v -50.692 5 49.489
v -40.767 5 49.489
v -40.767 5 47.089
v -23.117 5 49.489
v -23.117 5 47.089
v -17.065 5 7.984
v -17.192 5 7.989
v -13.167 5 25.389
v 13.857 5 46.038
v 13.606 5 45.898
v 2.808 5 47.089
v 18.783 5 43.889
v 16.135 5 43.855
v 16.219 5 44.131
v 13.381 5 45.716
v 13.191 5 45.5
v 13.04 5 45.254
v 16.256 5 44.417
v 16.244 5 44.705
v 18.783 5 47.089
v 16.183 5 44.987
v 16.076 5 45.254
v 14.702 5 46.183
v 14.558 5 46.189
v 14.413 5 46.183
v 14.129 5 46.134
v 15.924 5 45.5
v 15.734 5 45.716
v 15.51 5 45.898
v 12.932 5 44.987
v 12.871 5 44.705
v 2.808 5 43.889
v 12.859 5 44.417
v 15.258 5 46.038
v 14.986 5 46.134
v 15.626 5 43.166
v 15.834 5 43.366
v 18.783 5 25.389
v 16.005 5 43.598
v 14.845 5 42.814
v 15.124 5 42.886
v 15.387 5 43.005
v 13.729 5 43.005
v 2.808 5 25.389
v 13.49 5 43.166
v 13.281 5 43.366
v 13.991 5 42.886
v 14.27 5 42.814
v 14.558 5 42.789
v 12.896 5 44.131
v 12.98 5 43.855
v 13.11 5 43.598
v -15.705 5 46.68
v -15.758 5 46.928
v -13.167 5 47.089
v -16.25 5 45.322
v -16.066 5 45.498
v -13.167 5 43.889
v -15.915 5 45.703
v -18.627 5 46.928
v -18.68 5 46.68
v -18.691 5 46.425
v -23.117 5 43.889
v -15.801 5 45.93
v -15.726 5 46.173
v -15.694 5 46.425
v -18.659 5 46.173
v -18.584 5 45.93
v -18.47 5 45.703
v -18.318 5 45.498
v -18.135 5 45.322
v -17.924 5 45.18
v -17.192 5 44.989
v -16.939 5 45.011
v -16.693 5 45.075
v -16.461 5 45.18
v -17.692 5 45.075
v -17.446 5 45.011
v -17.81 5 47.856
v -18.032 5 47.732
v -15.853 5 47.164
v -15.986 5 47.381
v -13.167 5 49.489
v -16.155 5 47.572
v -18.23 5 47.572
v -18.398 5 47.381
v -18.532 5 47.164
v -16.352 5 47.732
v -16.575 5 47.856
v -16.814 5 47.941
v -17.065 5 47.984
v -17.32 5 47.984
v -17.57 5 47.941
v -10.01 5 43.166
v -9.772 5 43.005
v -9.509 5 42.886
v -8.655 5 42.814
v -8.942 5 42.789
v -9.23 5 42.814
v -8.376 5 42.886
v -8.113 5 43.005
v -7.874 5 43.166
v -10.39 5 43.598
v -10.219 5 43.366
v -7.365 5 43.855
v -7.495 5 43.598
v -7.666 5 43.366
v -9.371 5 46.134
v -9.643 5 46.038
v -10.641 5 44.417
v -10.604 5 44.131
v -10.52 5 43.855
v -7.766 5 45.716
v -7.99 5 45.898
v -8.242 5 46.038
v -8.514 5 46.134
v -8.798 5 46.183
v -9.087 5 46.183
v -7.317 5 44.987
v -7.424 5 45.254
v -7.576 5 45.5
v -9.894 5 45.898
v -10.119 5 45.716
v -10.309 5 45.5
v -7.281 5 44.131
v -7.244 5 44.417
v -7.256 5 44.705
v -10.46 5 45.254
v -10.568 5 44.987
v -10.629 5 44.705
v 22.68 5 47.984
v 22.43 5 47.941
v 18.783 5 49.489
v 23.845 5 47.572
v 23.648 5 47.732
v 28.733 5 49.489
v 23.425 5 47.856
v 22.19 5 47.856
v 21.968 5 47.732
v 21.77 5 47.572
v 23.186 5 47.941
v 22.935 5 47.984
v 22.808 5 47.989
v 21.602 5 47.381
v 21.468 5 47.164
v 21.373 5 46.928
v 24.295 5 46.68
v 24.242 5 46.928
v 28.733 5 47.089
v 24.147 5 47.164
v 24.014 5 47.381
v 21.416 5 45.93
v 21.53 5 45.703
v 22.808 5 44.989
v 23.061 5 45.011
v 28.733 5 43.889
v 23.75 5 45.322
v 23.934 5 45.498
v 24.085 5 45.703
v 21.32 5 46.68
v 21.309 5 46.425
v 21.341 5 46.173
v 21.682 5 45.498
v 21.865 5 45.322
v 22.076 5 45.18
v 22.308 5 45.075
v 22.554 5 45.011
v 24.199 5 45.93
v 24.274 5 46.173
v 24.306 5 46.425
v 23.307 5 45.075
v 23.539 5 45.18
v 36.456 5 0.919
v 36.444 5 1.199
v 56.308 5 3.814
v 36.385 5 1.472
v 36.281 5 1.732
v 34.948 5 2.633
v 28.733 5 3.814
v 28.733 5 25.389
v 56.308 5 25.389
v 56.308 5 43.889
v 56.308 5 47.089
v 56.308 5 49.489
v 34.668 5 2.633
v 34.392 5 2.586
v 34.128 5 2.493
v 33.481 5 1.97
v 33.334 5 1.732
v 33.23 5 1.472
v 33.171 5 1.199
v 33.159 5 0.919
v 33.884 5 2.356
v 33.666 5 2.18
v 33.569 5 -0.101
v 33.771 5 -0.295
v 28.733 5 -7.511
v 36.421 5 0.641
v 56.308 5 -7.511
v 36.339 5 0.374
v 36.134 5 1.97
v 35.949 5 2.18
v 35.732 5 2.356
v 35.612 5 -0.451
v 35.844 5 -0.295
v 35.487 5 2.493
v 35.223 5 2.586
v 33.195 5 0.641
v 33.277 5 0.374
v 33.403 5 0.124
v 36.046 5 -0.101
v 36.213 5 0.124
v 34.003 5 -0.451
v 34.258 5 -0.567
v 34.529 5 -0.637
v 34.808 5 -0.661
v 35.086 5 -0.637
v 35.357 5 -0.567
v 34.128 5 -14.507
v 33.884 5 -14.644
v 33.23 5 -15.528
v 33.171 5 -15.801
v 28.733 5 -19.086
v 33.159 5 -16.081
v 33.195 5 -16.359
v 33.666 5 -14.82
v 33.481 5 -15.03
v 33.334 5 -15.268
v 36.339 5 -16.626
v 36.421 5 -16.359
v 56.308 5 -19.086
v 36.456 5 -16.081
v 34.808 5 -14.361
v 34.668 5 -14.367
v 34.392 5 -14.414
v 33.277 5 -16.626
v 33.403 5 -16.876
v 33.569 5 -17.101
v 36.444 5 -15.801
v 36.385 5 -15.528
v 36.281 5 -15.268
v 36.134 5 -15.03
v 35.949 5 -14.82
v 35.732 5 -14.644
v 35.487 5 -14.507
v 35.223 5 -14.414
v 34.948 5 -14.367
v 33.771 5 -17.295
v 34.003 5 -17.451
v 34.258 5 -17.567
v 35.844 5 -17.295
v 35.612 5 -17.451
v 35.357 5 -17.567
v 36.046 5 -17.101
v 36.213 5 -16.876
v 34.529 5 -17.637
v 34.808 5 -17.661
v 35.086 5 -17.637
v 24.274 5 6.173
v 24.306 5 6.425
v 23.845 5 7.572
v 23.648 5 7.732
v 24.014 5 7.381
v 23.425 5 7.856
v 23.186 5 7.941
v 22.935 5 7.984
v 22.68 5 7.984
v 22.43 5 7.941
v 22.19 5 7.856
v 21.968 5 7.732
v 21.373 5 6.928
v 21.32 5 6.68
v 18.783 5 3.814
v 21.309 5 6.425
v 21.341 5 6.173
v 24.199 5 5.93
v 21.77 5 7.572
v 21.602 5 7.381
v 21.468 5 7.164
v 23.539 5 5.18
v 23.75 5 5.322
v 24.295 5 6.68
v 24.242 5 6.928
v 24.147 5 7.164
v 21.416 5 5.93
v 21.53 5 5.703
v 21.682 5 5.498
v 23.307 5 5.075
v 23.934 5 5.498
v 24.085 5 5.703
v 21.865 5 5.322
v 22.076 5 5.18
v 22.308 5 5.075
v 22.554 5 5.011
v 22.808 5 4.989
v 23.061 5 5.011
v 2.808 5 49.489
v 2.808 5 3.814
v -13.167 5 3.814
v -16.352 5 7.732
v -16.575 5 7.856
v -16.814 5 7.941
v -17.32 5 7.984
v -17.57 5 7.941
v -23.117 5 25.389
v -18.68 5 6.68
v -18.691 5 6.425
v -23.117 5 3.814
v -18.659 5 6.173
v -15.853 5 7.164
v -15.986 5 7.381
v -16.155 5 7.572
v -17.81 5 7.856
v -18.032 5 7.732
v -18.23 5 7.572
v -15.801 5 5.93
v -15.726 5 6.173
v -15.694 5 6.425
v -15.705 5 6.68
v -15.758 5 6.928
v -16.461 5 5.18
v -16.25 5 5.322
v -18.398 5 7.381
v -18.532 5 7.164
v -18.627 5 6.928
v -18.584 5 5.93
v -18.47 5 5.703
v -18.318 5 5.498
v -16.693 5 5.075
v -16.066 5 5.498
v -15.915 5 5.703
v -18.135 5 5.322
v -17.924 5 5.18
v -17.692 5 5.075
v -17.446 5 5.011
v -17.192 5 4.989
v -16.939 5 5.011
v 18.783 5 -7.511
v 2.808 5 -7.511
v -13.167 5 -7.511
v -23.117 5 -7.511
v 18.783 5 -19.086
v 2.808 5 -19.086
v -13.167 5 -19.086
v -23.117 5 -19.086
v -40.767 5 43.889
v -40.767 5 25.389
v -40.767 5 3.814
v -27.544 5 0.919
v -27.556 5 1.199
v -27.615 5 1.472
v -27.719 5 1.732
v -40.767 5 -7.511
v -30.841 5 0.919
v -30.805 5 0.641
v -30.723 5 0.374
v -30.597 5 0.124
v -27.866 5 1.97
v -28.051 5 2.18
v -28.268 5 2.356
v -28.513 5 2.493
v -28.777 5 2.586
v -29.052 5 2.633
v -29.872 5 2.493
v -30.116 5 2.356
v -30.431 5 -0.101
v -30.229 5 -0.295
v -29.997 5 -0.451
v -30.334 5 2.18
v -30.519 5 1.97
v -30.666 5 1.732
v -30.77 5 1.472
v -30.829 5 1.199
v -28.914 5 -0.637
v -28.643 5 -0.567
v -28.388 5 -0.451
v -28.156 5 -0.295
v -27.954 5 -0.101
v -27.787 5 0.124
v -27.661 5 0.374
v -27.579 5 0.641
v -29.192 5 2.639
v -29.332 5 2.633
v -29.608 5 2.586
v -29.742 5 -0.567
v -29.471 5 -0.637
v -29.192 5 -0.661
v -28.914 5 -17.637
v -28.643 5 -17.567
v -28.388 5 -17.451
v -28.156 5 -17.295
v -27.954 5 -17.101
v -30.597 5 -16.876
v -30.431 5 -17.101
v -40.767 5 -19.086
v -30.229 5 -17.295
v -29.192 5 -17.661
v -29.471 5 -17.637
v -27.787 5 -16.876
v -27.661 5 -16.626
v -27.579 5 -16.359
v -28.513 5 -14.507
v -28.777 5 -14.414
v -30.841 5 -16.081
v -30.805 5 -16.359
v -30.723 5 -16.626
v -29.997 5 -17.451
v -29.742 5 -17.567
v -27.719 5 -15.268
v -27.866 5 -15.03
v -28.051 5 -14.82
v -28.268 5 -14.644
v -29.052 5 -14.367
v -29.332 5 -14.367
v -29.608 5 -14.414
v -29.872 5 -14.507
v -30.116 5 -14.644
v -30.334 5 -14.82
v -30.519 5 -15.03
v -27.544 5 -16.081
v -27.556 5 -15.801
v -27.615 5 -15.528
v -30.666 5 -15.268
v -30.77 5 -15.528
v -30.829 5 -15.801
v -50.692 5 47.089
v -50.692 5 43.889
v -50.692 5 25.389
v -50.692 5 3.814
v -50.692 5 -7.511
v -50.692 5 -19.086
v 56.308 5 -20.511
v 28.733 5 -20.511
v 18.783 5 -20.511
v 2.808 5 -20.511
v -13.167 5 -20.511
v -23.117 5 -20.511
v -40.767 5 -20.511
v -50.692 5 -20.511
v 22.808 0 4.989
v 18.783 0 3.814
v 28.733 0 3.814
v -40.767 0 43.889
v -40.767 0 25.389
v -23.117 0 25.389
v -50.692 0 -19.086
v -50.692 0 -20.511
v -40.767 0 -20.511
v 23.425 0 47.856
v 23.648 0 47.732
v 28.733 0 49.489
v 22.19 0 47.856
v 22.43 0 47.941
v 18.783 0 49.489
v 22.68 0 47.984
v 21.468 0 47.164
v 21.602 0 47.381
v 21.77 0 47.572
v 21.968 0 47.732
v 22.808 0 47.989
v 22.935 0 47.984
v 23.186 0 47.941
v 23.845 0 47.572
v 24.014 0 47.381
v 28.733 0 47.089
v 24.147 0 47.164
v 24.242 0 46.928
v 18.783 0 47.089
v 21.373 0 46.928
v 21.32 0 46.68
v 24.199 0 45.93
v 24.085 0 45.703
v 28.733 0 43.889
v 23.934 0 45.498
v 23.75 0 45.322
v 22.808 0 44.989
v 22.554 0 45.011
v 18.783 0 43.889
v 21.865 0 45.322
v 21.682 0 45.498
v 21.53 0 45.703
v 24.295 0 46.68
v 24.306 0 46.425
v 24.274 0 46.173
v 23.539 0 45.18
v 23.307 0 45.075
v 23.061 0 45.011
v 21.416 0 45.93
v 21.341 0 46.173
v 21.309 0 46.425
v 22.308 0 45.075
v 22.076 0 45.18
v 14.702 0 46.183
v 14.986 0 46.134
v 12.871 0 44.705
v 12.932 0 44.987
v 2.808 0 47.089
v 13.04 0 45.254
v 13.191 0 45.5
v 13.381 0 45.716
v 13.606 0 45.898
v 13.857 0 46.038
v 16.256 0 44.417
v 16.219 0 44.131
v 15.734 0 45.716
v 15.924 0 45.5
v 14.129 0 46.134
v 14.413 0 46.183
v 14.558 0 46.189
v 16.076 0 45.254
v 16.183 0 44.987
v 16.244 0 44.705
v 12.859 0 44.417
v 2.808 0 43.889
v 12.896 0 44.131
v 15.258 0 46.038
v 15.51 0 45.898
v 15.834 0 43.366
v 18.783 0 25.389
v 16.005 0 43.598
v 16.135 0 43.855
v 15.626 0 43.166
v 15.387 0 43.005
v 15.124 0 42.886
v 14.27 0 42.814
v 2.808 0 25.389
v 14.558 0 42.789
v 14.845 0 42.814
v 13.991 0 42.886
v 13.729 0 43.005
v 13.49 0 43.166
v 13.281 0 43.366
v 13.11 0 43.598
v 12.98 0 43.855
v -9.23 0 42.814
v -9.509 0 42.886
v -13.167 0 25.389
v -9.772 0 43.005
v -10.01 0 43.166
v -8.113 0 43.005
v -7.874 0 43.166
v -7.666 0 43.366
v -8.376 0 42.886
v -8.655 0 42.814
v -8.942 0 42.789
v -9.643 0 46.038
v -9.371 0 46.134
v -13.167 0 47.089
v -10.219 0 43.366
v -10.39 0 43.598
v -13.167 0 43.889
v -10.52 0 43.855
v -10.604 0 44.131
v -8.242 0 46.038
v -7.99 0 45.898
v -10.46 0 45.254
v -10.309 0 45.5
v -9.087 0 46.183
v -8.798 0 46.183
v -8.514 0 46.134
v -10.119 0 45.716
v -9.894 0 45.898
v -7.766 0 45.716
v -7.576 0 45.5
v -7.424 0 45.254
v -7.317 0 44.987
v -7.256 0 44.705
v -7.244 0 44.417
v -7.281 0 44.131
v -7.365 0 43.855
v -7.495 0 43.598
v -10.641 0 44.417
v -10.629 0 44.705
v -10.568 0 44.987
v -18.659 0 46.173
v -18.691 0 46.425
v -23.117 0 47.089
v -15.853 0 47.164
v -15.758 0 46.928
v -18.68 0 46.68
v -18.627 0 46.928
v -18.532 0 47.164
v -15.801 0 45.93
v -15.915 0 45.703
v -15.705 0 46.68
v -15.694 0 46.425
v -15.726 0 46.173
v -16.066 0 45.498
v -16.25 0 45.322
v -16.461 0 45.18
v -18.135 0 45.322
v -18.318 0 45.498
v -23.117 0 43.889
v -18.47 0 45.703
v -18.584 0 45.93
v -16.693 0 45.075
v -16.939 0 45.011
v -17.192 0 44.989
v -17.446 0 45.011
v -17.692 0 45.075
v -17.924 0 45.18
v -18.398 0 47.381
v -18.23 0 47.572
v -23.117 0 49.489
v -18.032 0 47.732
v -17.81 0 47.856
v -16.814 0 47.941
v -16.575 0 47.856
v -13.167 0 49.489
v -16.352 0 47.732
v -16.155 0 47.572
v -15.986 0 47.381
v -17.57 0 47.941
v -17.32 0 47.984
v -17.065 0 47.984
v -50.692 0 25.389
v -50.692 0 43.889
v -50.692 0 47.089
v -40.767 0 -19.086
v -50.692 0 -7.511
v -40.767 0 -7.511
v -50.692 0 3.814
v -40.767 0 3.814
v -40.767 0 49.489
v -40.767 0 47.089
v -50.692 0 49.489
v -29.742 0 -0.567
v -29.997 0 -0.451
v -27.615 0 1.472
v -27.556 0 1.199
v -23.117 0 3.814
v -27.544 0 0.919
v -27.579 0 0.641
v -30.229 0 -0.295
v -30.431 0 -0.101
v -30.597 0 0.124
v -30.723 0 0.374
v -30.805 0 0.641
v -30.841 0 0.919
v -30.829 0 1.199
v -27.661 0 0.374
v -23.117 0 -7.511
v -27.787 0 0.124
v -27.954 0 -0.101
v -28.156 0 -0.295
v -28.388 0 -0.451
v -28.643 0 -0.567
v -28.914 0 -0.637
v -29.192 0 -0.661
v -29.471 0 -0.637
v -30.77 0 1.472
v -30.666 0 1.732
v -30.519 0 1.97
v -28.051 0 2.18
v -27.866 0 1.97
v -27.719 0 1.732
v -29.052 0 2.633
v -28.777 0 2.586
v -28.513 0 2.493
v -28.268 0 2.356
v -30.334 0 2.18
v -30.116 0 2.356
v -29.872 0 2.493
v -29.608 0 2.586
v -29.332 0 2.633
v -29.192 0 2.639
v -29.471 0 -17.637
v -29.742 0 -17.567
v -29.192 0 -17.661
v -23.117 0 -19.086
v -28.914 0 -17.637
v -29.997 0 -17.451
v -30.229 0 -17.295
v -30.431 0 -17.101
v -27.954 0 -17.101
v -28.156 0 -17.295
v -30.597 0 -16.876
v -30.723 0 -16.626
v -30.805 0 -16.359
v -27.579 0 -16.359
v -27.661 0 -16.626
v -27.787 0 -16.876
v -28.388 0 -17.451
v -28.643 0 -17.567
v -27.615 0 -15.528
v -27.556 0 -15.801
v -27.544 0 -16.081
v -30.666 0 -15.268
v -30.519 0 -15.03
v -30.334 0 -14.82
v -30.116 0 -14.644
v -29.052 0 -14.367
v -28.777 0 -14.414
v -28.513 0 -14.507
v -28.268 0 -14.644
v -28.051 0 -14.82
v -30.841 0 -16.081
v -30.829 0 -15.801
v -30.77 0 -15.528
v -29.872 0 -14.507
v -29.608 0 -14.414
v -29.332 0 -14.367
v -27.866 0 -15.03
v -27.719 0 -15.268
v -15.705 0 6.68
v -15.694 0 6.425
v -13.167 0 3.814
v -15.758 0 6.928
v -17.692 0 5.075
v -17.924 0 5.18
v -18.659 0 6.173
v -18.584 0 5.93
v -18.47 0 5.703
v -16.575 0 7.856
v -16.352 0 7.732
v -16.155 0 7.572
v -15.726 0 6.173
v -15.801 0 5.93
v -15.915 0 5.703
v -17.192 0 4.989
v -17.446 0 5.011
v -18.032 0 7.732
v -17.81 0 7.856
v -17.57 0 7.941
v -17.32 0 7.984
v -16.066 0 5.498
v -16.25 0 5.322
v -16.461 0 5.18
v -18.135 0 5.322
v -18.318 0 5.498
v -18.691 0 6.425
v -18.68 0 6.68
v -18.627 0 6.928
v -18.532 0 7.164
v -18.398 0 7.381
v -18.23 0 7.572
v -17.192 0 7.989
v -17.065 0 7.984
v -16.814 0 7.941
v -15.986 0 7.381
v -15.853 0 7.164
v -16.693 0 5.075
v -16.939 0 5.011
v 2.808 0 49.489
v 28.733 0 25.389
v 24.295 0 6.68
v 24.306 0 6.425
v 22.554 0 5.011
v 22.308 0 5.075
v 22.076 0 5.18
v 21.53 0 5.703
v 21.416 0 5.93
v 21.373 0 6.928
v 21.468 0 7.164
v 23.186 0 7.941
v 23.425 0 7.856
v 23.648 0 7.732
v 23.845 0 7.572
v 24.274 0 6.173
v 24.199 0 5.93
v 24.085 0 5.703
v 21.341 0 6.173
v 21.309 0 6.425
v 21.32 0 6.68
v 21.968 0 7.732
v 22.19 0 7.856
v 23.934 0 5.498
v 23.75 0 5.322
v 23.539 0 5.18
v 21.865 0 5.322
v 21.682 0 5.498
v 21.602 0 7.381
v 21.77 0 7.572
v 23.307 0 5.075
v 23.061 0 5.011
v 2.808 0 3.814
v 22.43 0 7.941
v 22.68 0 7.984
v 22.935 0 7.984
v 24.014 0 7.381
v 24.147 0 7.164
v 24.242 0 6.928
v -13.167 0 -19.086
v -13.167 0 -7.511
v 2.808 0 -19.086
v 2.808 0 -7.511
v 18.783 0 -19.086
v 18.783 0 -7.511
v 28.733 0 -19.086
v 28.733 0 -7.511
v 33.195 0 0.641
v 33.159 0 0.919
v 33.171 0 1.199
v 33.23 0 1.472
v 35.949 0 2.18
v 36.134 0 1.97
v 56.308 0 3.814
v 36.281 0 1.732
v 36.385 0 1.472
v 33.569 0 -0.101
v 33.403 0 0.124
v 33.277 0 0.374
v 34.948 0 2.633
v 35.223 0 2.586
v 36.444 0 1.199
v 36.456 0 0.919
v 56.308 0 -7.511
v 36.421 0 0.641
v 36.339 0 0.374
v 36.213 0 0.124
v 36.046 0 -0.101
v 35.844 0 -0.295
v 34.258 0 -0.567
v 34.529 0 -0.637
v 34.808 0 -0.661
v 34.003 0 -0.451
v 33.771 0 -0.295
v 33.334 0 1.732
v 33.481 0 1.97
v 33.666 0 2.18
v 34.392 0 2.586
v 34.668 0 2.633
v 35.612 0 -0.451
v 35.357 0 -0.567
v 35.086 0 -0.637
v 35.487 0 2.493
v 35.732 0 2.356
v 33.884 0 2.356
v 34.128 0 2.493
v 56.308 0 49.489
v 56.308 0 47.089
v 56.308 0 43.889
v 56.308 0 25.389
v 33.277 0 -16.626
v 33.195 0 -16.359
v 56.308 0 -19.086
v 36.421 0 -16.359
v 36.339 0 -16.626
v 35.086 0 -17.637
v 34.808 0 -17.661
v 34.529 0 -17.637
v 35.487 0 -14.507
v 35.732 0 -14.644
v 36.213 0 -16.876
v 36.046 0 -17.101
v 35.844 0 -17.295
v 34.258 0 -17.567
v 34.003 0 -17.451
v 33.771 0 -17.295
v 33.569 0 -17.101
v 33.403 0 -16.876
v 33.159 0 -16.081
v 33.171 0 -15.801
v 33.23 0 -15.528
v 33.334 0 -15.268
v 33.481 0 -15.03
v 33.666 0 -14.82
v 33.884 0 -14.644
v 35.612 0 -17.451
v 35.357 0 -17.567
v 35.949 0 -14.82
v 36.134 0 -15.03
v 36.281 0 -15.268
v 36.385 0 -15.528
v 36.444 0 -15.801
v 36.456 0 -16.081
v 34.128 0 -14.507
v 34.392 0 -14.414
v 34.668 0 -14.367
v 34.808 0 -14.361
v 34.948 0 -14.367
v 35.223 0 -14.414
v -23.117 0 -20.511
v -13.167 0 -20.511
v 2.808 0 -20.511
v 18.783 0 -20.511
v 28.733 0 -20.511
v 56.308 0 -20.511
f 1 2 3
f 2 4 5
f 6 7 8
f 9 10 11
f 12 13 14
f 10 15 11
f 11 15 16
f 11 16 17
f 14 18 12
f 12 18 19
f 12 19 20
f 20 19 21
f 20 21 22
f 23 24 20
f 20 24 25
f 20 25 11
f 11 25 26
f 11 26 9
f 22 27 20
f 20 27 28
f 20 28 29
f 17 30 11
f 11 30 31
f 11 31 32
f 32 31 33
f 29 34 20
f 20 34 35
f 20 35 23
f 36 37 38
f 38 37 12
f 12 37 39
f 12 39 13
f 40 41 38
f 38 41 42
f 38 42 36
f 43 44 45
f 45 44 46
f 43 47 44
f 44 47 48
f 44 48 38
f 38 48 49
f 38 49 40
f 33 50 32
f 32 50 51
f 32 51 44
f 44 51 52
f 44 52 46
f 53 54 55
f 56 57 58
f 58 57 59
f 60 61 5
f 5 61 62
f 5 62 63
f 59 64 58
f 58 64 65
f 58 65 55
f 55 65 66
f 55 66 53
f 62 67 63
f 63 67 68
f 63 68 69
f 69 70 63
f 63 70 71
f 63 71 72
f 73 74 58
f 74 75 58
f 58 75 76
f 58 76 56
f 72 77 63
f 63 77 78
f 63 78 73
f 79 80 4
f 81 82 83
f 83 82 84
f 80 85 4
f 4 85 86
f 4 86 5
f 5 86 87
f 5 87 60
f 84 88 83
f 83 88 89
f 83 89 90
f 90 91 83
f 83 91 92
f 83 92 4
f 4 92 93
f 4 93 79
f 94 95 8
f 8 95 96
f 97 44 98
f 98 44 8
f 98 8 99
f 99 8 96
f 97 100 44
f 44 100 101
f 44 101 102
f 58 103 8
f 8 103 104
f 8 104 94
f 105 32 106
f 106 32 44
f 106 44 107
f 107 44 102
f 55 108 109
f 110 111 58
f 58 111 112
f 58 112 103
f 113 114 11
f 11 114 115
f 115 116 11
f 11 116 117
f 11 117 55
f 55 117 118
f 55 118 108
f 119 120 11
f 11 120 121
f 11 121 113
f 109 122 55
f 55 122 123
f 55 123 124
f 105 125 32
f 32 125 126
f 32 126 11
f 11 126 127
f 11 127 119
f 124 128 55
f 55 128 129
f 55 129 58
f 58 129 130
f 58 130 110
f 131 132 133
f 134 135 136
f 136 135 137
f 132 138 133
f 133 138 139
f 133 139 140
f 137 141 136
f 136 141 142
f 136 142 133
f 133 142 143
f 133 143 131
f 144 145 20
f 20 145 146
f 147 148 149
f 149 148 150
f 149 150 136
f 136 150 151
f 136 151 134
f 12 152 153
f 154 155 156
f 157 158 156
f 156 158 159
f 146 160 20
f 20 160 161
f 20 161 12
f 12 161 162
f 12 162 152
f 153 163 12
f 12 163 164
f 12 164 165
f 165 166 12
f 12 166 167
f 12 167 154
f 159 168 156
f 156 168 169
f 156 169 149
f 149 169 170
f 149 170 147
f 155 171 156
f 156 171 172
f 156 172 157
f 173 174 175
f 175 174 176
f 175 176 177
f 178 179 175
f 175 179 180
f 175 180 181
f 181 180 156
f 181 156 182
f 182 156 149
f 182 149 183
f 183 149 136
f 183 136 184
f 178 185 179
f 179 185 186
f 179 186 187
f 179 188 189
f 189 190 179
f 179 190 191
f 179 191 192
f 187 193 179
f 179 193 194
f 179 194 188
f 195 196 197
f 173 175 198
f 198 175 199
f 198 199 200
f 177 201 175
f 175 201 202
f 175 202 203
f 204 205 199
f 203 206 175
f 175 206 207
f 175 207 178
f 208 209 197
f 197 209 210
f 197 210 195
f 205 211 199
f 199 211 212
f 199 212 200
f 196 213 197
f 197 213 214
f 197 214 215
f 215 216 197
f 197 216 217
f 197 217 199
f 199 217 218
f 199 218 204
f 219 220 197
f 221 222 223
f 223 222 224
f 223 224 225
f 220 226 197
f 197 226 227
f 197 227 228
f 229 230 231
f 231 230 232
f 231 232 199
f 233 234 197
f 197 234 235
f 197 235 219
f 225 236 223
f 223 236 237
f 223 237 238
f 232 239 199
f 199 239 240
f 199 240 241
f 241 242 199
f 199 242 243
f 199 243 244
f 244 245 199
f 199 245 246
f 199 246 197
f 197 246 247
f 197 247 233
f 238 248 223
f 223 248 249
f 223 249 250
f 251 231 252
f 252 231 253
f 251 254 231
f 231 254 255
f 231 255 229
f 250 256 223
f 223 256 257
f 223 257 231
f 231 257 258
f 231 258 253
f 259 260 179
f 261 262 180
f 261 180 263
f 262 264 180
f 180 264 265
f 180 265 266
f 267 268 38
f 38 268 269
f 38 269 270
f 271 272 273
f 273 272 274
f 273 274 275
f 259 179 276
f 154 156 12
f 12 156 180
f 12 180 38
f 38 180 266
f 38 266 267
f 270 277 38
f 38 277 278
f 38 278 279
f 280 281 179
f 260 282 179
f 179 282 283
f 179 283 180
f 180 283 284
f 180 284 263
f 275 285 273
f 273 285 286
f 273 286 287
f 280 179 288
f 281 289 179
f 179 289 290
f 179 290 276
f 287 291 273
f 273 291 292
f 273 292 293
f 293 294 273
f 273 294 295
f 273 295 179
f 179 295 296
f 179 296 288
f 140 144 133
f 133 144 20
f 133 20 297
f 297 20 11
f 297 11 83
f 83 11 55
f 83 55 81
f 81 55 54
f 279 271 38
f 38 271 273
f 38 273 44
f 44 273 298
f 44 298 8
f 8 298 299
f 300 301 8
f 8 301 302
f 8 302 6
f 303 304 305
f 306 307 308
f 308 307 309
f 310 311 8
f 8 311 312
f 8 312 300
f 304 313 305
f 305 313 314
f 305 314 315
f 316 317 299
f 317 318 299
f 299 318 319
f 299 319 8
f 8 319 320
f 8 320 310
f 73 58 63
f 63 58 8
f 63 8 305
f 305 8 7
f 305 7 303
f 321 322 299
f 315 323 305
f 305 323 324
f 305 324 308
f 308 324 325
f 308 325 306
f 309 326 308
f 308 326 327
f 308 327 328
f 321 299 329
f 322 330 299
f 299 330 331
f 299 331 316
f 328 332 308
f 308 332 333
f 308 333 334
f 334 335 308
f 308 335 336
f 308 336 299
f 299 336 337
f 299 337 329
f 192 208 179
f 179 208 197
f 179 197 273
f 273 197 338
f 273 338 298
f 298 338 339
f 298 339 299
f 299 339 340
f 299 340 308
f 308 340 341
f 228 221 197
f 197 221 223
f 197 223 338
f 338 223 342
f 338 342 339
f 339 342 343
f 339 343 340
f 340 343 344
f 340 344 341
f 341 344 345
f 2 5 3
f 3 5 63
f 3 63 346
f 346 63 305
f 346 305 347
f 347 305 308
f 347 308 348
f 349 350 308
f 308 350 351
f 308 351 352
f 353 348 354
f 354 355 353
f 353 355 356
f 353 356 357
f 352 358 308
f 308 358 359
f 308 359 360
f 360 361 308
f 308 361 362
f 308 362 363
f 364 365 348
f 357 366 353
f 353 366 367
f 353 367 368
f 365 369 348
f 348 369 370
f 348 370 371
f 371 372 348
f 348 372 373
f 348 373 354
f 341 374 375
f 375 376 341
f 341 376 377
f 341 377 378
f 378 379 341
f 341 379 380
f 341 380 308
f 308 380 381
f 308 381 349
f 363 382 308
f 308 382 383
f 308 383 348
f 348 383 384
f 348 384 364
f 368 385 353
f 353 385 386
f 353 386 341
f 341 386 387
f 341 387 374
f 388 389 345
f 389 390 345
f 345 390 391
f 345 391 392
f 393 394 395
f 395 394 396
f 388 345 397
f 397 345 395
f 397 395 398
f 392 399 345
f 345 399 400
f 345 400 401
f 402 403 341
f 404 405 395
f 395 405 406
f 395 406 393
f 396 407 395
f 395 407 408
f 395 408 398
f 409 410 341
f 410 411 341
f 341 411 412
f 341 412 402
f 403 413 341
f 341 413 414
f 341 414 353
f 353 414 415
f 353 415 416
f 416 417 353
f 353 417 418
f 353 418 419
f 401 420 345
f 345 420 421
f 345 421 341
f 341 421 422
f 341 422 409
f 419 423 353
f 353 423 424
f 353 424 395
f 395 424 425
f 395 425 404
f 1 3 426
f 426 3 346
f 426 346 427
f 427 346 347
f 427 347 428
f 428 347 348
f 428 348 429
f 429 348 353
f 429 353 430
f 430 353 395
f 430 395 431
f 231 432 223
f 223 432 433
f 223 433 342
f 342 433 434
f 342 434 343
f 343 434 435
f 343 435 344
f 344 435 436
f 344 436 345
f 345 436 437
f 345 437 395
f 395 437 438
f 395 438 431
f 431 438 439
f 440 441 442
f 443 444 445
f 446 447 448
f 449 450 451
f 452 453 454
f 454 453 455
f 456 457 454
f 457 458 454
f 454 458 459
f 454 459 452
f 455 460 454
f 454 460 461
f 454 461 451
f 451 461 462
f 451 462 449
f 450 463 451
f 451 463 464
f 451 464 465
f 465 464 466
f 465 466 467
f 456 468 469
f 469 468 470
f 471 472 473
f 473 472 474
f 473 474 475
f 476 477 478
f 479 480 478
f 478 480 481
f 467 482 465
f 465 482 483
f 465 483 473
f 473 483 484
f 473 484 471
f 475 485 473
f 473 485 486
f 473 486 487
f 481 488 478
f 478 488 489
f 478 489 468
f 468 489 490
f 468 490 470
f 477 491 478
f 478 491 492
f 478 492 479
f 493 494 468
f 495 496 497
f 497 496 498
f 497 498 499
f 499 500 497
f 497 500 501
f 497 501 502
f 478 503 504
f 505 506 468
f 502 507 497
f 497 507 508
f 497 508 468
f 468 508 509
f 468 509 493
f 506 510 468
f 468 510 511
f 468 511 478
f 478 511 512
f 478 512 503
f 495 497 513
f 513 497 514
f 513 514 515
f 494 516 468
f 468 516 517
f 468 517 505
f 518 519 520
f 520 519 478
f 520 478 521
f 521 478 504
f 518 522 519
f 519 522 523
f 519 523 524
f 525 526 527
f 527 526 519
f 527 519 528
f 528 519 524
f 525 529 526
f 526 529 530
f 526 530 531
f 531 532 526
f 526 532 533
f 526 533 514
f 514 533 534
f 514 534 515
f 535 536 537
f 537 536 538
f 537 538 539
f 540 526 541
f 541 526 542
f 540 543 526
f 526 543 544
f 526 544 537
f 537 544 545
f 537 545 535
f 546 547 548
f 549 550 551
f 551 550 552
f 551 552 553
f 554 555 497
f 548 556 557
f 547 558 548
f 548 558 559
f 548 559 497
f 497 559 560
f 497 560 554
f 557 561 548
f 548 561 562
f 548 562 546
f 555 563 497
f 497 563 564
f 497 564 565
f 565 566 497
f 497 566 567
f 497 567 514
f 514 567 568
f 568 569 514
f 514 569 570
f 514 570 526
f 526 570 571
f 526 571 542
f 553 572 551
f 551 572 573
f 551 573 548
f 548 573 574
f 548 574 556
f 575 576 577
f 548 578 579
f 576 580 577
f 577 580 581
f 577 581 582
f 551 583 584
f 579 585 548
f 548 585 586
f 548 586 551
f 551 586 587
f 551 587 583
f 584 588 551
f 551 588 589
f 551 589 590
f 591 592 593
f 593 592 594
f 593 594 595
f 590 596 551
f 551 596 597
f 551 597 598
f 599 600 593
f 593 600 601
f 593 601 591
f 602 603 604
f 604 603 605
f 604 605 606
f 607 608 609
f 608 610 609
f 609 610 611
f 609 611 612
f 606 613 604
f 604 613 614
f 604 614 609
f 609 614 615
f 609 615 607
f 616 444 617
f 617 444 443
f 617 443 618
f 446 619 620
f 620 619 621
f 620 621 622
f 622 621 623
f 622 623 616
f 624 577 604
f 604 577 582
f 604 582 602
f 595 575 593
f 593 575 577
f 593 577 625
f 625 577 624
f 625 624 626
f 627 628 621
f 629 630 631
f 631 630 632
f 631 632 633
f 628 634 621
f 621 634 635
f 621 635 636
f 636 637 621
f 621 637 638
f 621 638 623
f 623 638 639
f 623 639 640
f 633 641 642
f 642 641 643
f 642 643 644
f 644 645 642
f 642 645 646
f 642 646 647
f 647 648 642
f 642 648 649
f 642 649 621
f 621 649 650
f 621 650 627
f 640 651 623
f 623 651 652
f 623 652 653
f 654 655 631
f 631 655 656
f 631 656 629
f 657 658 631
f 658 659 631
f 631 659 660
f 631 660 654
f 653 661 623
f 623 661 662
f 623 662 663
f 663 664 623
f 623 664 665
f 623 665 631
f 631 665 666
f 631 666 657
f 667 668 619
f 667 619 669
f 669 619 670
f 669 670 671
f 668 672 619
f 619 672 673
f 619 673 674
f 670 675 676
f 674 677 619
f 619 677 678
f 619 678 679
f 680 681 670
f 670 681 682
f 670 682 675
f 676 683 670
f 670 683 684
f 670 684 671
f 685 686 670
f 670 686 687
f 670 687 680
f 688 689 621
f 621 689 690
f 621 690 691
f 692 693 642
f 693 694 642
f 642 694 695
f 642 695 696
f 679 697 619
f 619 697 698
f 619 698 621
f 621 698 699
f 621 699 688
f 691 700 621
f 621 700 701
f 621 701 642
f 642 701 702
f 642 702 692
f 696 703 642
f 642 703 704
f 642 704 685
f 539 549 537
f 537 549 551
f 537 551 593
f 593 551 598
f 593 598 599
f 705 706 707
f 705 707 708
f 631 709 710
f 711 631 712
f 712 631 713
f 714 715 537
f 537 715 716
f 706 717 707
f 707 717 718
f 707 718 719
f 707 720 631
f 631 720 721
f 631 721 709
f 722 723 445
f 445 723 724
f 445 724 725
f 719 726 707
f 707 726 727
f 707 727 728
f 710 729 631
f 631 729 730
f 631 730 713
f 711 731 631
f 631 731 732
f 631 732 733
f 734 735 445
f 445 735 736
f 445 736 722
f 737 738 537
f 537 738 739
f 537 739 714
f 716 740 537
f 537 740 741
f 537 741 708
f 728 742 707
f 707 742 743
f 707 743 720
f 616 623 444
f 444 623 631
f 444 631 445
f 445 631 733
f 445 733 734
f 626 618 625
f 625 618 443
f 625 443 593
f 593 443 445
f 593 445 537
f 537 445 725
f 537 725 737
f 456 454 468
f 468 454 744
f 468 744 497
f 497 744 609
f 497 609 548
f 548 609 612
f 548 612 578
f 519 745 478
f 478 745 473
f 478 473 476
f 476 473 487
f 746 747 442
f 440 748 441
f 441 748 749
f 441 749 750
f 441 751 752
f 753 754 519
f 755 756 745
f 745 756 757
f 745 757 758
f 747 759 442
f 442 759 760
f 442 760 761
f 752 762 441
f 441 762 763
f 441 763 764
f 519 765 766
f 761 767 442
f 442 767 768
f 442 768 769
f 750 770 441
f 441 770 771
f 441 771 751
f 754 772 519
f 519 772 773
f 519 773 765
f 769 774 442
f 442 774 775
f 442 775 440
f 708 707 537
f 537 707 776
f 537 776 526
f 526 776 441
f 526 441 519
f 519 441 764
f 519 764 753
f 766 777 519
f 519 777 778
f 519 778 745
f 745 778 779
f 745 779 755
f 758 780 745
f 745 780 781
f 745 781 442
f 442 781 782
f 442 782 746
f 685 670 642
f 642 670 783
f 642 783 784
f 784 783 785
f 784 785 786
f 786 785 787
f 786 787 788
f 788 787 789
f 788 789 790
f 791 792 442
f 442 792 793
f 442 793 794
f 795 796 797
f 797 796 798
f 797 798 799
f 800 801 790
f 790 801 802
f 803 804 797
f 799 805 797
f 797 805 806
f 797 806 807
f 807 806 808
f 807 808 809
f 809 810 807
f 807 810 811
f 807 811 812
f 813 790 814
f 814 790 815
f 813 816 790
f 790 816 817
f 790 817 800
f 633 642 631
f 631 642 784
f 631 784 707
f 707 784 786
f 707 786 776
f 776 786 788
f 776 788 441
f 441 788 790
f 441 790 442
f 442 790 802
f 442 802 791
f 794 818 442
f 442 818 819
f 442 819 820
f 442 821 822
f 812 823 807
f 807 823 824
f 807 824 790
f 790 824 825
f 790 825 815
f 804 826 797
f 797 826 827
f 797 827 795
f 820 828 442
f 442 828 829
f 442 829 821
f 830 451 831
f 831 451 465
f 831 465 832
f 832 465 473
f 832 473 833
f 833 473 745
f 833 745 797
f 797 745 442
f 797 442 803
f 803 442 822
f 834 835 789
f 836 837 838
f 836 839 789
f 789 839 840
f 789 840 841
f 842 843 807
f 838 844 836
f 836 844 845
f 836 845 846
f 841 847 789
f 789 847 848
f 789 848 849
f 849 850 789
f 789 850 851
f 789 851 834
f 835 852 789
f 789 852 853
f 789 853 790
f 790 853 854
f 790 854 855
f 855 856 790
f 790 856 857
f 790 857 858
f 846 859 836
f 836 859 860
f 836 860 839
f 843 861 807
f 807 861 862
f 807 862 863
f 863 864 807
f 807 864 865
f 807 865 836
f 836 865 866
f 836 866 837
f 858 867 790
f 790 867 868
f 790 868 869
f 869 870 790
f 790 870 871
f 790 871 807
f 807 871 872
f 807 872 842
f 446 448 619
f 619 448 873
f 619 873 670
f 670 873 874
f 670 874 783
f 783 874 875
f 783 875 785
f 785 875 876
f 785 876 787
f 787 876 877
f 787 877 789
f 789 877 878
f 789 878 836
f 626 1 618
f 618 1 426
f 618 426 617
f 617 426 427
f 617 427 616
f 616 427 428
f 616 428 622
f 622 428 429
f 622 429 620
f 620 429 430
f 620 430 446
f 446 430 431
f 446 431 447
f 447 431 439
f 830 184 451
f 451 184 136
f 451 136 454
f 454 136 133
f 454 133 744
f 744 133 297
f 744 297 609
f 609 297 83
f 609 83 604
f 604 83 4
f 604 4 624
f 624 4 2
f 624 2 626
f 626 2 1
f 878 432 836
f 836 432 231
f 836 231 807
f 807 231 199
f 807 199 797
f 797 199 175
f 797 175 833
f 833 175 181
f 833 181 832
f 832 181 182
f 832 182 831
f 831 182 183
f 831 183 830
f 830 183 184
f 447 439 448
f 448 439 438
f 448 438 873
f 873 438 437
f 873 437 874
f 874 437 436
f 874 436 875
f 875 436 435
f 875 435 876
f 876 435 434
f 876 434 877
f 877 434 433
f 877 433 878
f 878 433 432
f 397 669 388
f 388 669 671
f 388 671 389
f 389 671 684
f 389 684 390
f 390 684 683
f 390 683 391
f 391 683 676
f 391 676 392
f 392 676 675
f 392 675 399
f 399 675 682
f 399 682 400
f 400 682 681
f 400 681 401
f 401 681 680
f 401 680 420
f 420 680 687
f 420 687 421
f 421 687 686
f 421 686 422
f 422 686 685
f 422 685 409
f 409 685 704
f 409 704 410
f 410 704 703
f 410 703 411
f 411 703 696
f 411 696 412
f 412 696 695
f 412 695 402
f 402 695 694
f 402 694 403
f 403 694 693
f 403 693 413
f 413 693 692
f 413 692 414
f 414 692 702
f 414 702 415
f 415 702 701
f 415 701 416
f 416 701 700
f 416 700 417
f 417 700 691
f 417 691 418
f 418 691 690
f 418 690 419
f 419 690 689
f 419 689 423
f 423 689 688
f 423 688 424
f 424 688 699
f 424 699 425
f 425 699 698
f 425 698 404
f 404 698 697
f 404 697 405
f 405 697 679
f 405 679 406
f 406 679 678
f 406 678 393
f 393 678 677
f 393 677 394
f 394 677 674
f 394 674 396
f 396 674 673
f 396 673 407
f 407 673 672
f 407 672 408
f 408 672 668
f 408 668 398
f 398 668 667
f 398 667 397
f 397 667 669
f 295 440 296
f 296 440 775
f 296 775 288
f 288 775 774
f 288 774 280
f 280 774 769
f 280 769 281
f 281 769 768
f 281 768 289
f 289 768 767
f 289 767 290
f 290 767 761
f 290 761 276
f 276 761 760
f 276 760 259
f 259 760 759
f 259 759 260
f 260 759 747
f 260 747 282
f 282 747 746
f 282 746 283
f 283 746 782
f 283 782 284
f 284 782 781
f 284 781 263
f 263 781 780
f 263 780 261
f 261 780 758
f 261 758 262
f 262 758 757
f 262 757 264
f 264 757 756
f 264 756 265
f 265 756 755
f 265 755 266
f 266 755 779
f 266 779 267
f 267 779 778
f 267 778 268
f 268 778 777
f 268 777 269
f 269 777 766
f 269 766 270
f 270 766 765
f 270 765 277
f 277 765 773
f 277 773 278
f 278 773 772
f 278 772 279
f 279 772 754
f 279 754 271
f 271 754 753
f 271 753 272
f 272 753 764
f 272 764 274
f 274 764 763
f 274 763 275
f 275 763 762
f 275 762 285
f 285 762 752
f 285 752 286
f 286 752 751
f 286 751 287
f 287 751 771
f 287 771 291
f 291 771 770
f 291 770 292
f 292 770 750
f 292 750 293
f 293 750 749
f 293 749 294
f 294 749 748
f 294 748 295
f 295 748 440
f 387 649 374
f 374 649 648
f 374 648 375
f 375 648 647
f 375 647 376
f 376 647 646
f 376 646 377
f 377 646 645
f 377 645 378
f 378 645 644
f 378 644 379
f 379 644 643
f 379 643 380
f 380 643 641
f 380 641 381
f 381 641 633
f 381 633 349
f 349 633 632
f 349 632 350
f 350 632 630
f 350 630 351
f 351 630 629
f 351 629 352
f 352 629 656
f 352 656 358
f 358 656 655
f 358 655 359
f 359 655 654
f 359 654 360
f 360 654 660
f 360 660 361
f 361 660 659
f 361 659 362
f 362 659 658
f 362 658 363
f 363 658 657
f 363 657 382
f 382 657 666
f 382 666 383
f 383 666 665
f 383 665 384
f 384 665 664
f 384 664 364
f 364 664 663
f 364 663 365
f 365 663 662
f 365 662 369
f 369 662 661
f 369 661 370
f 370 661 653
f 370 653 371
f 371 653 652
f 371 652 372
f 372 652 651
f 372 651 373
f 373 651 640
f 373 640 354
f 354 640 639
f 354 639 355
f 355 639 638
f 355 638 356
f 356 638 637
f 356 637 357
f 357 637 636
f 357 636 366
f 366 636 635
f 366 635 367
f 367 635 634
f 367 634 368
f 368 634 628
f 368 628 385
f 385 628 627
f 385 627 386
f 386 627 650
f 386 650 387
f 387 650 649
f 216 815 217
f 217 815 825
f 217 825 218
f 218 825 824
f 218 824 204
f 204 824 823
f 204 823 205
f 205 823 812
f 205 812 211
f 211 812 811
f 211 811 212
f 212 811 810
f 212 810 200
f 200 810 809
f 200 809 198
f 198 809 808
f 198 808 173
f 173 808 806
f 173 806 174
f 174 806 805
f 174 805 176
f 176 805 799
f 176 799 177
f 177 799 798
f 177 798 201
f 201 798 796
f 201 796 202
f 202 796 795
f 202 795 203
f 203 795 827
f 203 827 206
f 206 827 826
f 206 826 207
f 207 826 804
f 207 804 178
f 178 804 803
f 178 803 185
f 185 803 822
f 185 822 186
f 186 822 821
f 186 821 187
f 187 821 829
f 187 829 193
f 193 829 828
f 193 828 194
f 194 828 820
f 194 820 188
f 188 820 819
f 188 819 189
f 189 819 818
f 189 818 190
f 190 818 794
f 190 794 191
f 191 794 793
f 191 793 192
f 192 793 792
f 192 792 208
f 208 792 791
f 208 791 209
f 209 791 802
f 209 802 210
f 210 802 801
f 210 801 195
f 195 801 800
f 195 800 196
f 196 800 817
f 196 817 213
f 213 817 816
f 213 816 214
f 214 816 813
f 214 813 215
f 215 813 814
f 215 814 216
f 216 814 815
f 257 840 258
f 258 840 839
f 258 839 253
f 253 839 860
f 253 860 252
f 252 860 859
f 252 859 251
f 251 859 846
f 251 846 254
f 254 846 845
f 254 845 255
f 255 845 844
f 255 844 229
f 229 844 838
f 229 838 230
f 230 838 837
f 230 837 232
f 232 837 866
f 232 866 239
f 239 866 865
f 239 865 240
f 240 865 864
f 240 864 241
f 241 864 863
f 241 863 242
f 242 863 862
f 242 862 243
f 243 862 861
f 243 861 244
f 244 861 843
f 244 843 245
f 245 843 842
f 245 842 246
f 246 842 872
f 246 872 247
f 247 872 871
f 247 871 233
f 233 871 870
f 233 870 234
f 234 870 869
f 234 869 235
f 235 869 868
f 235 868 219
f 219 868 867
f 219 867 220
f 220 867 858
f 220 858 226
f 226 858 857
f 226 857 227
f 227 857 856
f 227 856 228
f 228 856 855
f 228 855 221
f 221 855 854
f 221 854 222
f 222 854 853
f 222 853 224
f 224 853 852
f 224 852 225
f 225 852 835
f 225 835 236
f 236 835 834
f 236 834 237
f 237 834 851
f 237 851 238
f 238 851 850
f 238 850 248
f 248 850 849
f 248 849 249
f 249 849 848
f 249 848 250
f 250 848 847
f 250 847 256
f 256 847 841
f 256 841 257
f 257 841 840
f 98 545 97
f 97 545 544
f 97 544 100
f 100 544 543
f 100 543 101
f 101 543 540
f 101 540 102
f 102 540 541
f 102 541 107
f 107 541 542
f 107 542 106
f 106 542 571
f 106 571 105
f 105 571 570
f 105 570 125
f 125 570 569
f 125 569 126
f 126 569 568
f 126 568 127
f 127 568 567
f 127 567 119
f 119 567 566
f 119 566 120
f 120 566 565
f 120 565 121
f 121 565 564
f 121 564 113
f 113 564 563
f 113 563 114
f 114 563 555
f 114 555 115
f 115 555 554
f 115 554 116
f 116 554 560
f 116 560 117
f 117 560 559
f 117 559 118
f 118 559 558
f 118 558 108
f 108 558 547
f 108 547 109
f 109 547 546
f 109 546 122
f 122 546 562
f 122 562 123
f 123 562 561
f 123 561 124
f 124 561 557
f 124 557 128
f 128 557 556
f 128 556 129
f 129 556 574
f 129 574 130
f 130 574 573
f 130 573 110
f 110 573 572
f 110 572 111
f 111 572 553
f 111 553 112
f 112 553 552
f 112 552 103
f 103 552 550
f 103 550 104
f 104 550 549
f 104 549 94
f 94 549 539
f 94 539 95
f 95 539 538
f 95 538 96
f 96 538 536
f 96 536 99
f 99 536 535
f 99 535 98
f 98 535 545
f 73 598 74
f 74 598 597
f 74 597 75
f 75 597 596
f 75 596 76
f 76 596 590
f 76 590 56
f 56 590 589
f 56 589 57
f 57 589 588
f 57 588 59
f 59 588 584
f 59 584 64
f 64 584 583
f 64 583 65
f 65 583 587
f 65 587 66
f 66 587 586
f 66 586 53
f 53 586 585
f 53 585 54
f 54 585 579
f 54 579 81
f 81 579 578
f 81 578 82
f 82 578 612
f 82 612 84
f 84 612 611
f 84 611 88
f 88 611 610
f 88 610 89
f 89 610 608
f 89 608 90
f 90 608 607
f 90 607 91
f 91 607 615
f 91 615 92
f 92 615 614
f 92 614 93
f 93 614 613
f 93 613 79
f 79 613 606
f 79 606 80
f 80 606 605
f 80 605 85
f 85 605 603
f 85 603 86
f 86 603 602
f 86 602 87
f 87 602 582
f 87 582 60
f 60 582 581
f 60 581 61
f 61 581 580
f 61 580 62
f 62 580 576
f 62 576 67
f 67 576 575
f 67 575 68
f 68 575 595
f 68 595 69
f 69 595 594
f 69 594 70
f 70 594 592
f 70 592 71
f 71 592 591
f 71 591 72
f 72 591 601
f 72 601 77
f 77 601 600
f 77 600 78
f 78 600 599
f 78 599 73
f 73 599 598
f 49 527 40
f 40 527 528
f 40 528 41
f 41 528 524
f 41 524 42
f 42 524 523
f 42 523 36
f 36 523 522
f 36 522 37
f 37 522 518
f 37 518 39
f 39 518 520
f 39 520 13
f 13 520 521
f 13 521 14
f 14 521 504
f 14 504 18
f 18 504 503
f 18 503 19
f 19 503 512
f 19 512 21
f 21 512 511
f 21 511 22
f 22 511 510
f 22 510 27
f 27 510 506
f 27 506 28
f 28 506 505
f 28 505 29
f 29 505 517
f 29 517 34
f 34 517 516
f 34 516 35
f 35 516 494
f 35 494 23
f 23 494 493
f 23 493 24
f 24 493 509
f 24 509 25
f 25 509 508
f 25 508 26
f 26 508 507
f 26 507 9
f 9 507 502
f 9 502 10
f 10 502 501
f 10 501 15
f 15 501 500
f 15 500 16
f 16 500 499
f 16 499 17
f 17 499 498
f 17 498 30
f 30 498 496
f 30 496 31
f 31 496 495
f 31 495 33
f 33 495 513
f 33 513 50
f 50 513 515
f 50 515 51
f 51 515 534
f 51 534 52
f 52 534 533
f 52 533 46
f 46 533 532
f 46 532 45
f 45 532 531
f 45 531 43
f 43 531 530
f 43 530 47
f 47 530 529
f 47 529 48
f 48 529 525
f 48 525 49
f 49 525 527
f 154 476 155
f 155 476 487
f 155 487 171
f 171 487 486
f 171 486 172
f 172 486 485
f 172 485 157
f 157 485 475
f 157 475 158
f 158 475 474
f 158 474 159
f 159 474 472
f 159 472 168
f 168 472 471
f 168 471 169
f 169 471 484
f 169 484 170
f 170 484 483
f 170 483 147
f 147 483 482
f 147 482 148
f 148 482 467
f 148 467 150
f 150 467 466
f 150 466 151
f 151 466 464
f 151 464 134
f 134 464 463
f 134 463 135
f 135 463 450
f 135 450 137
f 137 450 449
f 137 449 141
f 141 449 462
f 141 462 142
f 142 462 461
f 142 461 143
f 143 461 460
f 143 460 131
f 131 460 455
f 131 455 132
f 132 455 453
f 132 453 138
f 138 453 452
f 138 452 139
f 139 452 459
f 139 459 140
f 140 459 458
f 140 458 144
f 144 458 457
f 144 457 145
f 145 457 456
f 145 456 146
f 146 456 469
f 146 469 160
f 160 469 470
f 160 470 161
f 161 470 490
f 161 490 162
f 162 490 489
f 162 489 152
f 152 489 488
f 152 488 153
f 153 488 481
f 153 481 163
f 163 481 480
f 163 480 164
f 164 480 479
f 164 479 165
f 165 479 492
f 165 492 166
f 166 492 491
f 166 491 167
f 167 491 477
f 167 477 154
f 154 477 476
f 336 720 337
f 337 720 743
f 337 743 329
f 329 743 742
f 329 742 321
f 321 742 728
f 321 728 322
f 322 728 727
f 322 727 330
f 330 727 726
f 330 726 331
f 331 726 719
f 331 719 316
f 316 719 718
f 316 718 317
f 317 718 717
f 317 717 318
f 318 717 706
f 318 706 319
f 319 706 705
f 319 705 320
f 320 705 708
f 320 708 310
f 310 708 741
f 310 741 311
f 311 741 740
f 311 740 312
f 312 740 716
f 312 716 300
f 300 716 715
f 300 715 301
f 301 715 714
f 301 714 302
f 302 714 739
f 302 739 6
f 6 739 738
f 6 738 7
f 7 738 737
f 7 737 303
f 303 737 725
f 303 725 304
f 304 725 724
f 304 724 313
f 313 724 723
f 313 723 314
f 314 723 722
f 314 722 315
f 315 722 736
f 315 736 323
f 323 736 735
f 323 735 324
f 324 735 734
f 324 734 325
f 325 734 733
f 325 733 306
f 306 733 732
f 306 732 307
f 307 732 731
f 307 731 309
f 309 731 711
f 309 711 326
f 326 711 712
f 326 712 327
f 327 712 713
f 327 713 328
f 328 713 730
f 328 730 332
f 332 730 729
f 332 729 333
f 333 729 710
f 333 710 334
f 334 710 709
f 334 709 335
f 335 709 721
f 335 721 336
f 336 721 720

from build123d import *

# Parameters (mm, degrees)
SKETCH_1_W          = 107
SKETCH_1_H          = 70
EXTRUDE_1_DEPTH     = 5
SKETCH_2_R          = 1.7
SKETCH_2_R_2        = 1.65
SKETCH_2_R_3        = 1.5
CUT_EXTRUDE_1_DEPTH = 5


with BuildPart() as part:
    # 草图1 → 凸台-拉伸1 (new body)
    with BuildSketch(Plane(origin=(0, 0, 0), x_dir=(1, 0, 0), z_dir=(0, 1, 0))):
        with Locations((2.807580175, -14.489067055)):
            Rectangle(SKETCH_1_W, SKETCH_1_H)
    extrude(amount=EXTRUDE_1_DEPTH)

    # 草图2 → 切除-拉伸1 (cut)
    with BuildSketch(Plane.XZ):
        with Locations(Location((-8.942419825, 44.489067055, 0), (0, 0, 270))):
            Circle(SKETCH_2_R)
        with Locations(Location((-29.192419825, -16.010932945, 0), (0, 0, 270))):
            Circle(SKETCH_2_R_2)
        with Locations(Location((-29.192419825, 0.989067055, 0), (0, 0, 90))):
            Circle(SKETCH_2_R_2)
        with Locations(Location((14.557580175, 44.489067055, 0), (0, 0, 90))):
            Circle(SKETCH_2_R)
        with Locations(Location((34.807580175, -16.010932945, 0), (0, 0, 90))):
            Circle(SKETCH_2_R_2)
        with Locations(Location((34.807580175, 0.989067055, 0), (0, 0, 270))):
            Circle(SKETCH_2_R_2)
        with Locations(Location((-17.192419825, 46.489067055, 0), (0, 0, 270))):
            Circle(SKETCH_2_R_3)
        with Locations(Location((-17.192419825, 6.489067055, 0), (0, 0, 90))):
            Circle(SKETCH_2_R_3)
        with Locations(Location((22.807580175, 46.489067055, 0), (0, 0, 90))):
            Circle(SKETCH_2_R_3)
        with Locations(Location((22.807580175, 6.489067055, 0), (0, 0, 270))):
            Circle(SKETCH_2_R_3)
    extrude(amount=-CUT_EXTRUDE_1_DEPTH, mode=Mode.SUBTRACT)


solid = part.part
